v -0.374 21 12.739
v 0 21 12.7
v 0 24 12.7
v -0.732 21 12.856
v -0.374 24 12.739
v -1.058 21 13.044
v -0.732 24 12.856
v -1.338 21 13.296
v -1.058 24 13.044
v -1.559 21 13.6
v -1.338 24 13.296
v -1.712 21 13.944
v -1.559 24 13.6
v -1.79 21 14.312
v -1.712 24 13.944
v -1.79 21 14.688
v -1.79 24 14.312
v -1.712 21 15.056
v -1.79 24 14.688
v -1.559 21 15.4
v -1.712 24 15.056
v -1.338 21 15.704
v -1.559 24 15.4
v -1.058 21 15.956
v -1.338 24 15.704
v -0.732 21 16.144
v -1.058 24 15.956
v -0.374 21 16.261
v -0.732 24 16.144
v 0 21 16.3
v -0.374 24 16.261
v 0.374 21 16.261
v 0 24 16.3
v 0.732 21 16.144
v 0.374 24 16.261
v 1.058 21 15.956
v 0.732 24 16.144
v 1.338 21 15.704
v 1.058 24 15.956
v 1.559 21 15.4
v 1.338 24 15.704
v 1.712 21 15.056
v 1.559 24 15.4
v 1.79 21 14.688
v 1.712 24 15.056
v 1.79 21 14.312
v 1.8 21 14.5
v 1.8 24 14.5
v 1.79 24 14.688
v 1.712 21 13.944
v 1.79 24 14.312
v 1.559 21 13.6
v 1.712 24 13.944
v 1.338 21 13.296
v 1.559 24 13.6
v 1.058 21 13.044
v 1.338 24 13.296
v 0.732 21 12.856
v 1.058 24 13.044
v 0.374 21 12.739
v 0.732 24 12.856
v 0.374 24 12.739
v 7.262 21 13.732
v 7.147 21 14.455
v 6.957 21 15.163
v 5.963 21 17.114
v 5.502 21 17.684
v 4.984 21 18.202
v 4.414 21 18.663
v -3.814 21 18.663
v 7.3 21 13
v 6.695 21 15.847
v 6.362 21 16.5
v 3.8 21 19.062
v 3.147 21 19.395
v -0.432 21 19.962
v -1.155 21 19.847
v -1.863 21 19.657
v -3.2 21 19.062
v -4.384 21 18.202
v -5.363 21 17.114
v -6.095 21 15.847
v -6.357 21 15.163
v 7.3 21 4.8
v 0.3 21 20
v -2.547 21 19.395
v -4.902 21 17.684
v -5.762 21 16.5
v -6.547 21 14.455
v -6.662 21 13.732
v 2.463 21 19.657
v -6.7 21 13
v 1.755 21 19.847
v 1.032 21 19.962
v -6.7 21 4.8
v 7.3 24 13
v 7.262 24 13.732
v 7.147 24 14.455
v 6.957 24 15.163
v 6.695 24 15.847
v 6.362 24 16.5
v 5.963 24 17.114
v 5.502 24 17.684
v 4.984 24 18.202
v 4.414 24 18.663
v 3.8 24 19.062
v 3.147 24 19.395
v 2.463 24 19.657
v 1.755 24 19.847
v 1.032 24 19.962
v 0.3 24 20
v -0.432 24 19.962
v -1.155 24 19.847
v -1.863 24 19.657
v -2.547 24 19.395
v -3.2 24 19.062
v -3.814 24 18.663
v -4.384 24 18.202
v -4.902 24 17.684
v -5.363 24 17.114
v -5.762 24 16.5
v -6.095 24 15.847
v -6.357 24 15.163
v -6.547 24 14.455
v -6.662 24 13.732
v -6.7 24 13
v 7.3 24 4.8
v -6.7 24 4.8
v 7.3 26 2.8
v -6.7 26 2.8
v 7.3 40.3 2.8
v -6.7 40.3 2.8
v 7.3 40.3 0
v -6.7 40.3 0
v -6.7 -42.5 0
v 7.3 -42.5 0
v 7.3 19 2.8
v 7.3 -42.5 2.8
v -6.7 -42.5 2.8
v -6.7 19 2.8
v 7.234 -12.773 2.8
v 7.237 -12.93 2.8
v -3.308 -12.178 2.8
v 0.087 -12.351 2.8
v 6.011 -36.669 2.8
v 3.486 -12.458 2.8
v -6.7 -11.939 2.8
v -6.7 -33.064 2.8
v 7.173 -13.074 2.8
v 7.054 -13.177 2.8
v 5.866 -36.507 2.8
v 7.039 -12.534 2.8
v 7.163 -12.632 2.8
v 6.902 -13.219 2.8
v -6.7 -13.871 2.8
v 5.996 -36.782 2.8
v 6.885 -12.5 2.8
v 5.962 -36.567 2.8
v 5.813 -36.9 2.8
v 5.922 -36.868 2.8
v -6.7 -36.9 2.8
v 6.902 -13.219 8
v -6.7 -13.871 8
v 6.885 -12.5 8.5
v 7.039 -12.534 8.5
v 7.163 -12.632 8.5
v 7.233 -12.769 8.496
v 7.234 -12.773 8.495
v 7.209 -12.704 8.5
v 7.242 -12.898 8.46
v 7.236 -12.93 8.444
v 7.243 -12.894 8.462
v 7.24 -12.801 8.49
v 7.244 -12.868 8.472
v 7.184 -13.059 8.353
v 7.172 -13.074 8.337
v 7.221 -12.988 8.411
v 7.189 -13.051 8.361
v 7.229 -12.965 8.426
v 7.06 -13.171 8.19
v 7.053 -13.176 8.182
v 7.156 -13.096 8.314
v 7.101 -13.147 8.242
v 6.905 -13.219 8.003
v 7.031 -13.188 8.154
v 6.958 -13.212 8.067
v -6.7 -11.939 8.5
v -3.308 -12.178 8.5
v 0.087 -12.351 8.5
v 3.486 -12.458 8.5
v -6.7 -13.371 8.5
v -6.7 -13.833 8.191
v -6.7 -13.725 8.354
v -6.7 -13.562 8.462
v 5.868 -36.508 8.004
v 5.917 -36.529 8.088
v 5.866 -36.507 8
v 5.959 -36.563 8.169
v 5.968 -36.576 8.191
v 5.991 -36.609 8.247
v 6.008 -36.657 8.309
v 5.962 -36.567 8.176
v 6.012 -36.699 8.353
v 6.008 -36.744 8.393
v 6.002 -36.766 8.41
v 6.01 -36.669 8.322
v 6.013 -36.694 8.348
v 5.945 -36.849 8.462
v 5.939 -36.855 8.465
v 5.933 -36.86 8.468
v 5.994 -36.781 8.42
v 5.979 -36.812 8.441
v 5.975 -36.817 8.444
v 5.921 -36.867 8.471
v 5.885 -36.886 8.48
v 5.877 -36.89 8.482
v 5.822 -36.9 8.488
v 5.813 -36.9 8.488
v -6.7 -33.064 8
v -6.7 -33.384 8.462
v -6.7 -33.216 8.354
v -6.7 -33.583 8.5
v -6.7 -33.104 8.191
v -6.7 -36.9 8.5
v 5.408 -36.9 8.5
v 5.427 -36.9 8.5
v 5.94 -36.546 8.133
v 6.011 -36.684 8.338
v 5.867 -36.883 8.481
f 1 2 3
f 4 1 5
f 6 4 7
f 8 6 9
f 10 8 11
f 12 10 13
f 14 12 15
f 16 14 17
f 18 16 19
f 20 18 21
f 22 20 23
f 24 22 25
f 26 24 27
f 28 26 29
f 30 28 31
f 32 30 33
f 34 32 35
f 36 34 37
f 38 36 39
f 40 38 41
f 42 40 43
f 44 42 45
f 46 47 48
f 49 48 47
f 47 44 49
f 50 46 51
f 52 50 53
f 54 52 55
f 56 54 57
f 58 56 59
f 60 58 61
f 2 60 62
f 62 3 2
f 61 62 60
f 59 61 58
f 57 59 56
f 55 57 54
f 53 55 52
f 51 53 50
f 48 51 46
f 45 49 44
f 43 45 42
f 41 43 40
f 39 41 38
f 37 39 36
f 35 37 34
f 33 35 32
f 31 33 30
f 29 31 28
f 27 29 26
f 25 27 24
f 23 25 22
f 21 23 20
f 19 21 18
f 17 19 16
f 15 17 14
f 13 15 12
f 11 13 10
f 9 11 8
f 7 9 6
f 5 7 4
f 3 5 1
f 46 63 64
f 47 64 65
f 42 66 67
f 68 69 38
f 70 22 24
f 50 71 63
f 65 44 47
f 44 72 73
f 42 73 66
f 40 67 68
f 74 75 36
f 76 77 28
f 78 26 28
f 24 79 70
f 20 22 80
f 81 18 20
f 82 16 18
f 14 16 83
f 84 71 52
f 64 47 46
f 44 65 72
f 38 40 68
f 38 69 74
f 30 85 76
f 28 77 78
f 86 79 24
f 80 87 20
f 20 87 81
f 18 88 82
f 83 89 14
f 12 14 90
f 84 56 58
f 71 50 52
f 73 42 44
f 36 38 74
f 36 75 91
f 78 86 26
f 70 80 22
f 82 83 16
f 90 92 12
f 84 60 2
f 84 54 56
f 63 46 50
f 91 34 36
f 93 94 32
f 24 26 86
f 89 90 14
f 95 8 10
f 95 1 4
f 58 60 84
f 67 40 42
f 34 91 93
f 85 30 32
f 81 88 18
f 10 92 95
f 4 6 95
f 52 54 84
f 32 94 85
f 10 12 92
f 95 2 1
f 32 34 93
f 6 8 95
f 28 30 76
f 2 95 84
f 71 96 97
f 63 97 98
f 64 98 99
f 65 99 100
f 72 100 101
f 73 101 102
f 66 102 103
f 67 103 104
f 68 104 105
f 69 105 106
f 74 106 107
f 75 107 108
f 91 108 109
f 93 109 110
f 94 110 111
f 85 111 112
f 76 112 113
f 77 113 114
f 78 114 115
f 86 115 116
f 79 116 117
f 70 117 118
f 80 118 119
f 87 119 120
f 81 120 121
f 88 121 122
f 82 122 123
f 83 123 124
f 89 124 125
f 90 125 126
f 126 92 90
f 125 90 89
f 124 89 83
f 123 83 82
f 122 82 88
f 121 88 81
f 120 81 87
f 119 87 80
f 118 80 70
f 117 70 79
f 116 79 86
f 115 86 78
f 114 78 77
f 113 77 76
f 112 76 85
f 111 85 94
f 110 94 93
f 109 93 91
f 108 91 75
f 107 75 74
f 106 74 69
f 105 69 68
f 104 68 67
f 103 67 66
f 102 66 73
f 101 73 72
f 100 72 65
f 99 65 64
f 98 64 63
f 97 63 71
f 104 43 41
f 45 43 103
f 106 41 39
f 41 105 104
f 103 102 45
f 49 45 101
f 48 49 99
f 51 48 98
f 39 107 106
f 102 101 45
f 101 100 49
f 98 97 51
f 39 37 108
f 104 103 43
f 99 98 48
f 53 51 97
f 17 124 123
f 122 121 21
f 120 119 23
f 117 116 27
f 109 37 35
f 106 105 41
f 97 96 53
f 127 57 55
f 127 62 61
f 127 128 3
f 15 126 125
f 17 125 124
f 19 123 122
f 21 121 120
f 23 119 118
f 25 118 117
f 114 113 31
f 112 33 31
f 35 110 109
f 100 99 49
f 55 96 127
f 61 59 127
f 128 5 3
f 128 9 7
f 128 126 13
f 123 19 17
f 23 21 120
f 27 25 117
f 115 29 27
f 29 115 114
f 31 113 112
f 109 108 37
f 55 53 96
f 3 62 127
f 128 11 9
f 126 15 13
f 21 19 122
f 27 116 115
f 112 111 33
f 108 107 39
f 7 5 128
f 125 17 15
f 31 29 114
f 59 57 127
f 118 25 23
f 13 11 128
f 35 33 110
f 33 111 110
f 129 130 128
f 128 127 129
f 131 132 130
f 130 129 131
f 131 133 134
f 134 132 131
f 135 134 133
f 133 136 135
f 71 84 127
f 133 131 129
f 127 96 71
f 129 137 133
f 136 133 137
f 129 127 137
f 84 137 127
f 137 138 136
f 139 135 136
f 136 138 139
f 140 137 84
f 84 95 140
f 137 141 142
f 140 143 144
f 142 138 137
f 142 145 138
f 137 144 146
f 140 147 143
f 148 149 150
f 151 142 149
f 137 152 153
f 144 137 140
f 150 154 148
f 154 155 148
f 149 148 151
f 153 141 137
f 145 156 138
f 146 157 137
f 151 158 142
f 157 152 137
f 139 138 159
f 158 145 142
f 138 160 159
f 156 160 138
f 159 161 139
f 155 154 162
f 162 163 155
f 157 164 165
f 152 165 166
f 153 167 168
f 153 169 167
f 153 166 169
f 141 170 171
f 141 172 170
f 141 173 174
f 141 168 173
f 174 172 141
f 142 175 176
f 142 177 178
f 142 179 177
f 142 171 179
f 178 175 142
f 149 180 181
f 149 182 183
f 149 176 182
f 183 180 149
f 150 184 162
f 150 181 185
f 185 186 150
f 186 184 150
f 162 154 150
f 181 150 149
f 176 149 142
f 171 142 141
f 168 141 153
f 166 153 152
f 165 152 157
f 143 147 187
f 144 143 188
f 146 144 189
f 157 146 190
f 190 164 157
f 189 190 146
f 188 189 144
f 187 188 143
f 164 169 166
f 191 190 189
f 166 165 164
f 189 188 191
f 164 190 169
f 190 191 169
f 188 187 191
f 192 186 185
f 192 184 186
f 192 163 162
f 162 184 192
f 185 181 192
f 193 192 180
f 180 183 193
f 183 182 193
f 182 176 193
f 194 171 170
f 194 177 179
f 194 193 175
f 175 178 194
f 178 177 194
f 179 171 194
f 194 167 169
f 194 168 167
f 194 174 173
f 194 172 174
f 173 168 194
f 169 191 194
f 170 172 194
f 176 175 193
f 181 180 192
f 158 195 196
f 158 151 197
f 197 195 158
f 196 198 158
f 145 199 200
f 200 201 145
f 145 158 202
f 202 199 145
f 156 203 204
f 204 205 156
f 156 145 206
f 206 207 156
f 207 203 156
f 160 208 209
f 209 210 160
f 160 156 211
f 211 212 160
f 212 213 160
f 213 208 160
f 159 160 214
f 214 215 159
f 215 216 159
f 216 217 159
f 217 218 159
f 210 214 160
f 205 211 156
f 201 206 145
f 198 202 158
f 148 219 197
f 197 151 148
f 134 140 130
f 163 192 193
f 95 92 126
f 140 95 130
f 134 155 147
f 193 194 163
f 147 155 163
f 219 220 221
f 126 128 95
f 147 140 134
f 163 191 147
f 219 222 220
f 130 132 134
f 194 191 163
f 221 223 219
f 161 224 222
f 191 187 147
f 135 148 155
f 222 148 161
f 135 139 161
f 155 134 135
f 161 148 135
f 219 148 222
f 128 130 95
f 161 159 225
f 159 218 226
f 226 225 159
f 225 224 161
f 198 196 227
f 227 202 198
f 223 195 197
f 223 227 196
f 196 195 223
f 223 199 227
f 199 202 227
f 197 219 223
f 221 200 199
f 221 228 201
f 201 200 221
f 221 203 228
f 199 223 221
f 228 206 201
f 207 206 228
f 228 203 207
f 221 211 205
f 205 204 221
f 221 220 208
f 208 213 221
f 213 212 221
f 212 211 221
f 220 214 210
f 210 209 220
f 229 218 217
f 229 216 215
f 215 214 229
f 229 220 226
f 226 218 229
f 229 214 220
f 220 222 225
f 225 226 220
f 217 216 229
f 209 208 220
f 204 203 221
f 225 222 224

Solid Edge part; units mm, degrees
sketch "Sketch1" plane through (0, 0, 0) normal (0, 0, 1) x (1, 0, 0)
  line L0 (-6.7, 40.3) -> (-6.7, 24)
  line L1 (-6.7, 24) -> (-6.7, 21)
  line L2 (-6.7, 21) -> (-6.7, -11.9391)
  line L3 (-6.7, -11.9391) -> (-6.7, -13.8712)
  line L4 (-6.7, -13.8712) -> (-6.7, -33.0644)
  line L5 (-6.7, -33.0644) -> (-6.7, -36.9)
  line L6 (-6.7, -36.9) -> (-6.7, -42.5)
  line L7 (-6.7, -42.5) -> (7.3, -42.5)
  line L8 (7.3, -42.5) -> (7.3, 21)
  line L9 (7.3, 21) -> (7.3, 24)
  line L10 (7.3, 24) -> (7.3, 40.3)
  line L11 (7.3, 40.3) -> (-6.7, 40.3)
extrude "Protrusion1" add sketch "Sketch1" along normal blind 2.8
sketch "Sketch2" plane through (0, 0, 0) normal (0, 0, 1) x (1, 0, 0)
  line L0 (-6.7, -13.8712) -> (6.9017, -13.2191)
  arc A0 (6.9017, -13.2191) -> (6.8854, -12.4995) centre (6.8845, -12.8595) ccw
  arc A1 (6.8854, -12.4995) -> (-6.7, -11.9391) centre (7.3, 162.5) cw
  line L1 (-6.7, -11.9391) -> (-6.7, -13.8712)
  line L2 (-6.7, -36.9) -> (5.8131, -36.9)
  arc A2 (5.8659, -36.5071) -> (5.8131, -36.9) centre (5.8131, -36.7) cw
  line L3 (-6.7, -33.0644) -> (5.8659, -36.5071)
  line L4 (-6.7, -33.0644) -> (-6.7, -36.9)
extrude "ExtrudedProtrusion_2" add sketch "Sketch2" along normal blind 8.5
sketch "Sketch3" plane through (0, 0, 0) normal (0, 0, 1) x (1, 0, 0)
  line L0 (7.3, 21) -> (-6.7, 21)
  line L1 (-6.7, 24) -> (-6.7, 21)
  line L2 (7.3, 24) -> (-6.7, 24)
  line L3 (7.3, 21) -> (7.3, 24)
extrude "ExtrudedProtrusion_3" add sketch "Sketch3" along normal blind 20
fillet "Round_1" radius 7 2 edges at (7.3, 22.5, 20) (-6.7, 22.5, 20)
fillet "Round_2" radius 0.5 2 edges at (0.1009, -13.5452, 8.5) (-0.417, -34.7857, 8.5)
sketch "Sketch4" plane through (0, 21, 11.4) normal (0, -1, 0) x (1, 0, 0)
  circle A0 centre (0, 3.1) radius 1.8
extrude "ExtrudedCutout_1" cut sketch "Sketch4" against normal blind 3
chamfer "Chamfer_1" distance 2 angle 45 2 edges at (0.3, 21, 2.8) (0.3, 24, 2.8)
